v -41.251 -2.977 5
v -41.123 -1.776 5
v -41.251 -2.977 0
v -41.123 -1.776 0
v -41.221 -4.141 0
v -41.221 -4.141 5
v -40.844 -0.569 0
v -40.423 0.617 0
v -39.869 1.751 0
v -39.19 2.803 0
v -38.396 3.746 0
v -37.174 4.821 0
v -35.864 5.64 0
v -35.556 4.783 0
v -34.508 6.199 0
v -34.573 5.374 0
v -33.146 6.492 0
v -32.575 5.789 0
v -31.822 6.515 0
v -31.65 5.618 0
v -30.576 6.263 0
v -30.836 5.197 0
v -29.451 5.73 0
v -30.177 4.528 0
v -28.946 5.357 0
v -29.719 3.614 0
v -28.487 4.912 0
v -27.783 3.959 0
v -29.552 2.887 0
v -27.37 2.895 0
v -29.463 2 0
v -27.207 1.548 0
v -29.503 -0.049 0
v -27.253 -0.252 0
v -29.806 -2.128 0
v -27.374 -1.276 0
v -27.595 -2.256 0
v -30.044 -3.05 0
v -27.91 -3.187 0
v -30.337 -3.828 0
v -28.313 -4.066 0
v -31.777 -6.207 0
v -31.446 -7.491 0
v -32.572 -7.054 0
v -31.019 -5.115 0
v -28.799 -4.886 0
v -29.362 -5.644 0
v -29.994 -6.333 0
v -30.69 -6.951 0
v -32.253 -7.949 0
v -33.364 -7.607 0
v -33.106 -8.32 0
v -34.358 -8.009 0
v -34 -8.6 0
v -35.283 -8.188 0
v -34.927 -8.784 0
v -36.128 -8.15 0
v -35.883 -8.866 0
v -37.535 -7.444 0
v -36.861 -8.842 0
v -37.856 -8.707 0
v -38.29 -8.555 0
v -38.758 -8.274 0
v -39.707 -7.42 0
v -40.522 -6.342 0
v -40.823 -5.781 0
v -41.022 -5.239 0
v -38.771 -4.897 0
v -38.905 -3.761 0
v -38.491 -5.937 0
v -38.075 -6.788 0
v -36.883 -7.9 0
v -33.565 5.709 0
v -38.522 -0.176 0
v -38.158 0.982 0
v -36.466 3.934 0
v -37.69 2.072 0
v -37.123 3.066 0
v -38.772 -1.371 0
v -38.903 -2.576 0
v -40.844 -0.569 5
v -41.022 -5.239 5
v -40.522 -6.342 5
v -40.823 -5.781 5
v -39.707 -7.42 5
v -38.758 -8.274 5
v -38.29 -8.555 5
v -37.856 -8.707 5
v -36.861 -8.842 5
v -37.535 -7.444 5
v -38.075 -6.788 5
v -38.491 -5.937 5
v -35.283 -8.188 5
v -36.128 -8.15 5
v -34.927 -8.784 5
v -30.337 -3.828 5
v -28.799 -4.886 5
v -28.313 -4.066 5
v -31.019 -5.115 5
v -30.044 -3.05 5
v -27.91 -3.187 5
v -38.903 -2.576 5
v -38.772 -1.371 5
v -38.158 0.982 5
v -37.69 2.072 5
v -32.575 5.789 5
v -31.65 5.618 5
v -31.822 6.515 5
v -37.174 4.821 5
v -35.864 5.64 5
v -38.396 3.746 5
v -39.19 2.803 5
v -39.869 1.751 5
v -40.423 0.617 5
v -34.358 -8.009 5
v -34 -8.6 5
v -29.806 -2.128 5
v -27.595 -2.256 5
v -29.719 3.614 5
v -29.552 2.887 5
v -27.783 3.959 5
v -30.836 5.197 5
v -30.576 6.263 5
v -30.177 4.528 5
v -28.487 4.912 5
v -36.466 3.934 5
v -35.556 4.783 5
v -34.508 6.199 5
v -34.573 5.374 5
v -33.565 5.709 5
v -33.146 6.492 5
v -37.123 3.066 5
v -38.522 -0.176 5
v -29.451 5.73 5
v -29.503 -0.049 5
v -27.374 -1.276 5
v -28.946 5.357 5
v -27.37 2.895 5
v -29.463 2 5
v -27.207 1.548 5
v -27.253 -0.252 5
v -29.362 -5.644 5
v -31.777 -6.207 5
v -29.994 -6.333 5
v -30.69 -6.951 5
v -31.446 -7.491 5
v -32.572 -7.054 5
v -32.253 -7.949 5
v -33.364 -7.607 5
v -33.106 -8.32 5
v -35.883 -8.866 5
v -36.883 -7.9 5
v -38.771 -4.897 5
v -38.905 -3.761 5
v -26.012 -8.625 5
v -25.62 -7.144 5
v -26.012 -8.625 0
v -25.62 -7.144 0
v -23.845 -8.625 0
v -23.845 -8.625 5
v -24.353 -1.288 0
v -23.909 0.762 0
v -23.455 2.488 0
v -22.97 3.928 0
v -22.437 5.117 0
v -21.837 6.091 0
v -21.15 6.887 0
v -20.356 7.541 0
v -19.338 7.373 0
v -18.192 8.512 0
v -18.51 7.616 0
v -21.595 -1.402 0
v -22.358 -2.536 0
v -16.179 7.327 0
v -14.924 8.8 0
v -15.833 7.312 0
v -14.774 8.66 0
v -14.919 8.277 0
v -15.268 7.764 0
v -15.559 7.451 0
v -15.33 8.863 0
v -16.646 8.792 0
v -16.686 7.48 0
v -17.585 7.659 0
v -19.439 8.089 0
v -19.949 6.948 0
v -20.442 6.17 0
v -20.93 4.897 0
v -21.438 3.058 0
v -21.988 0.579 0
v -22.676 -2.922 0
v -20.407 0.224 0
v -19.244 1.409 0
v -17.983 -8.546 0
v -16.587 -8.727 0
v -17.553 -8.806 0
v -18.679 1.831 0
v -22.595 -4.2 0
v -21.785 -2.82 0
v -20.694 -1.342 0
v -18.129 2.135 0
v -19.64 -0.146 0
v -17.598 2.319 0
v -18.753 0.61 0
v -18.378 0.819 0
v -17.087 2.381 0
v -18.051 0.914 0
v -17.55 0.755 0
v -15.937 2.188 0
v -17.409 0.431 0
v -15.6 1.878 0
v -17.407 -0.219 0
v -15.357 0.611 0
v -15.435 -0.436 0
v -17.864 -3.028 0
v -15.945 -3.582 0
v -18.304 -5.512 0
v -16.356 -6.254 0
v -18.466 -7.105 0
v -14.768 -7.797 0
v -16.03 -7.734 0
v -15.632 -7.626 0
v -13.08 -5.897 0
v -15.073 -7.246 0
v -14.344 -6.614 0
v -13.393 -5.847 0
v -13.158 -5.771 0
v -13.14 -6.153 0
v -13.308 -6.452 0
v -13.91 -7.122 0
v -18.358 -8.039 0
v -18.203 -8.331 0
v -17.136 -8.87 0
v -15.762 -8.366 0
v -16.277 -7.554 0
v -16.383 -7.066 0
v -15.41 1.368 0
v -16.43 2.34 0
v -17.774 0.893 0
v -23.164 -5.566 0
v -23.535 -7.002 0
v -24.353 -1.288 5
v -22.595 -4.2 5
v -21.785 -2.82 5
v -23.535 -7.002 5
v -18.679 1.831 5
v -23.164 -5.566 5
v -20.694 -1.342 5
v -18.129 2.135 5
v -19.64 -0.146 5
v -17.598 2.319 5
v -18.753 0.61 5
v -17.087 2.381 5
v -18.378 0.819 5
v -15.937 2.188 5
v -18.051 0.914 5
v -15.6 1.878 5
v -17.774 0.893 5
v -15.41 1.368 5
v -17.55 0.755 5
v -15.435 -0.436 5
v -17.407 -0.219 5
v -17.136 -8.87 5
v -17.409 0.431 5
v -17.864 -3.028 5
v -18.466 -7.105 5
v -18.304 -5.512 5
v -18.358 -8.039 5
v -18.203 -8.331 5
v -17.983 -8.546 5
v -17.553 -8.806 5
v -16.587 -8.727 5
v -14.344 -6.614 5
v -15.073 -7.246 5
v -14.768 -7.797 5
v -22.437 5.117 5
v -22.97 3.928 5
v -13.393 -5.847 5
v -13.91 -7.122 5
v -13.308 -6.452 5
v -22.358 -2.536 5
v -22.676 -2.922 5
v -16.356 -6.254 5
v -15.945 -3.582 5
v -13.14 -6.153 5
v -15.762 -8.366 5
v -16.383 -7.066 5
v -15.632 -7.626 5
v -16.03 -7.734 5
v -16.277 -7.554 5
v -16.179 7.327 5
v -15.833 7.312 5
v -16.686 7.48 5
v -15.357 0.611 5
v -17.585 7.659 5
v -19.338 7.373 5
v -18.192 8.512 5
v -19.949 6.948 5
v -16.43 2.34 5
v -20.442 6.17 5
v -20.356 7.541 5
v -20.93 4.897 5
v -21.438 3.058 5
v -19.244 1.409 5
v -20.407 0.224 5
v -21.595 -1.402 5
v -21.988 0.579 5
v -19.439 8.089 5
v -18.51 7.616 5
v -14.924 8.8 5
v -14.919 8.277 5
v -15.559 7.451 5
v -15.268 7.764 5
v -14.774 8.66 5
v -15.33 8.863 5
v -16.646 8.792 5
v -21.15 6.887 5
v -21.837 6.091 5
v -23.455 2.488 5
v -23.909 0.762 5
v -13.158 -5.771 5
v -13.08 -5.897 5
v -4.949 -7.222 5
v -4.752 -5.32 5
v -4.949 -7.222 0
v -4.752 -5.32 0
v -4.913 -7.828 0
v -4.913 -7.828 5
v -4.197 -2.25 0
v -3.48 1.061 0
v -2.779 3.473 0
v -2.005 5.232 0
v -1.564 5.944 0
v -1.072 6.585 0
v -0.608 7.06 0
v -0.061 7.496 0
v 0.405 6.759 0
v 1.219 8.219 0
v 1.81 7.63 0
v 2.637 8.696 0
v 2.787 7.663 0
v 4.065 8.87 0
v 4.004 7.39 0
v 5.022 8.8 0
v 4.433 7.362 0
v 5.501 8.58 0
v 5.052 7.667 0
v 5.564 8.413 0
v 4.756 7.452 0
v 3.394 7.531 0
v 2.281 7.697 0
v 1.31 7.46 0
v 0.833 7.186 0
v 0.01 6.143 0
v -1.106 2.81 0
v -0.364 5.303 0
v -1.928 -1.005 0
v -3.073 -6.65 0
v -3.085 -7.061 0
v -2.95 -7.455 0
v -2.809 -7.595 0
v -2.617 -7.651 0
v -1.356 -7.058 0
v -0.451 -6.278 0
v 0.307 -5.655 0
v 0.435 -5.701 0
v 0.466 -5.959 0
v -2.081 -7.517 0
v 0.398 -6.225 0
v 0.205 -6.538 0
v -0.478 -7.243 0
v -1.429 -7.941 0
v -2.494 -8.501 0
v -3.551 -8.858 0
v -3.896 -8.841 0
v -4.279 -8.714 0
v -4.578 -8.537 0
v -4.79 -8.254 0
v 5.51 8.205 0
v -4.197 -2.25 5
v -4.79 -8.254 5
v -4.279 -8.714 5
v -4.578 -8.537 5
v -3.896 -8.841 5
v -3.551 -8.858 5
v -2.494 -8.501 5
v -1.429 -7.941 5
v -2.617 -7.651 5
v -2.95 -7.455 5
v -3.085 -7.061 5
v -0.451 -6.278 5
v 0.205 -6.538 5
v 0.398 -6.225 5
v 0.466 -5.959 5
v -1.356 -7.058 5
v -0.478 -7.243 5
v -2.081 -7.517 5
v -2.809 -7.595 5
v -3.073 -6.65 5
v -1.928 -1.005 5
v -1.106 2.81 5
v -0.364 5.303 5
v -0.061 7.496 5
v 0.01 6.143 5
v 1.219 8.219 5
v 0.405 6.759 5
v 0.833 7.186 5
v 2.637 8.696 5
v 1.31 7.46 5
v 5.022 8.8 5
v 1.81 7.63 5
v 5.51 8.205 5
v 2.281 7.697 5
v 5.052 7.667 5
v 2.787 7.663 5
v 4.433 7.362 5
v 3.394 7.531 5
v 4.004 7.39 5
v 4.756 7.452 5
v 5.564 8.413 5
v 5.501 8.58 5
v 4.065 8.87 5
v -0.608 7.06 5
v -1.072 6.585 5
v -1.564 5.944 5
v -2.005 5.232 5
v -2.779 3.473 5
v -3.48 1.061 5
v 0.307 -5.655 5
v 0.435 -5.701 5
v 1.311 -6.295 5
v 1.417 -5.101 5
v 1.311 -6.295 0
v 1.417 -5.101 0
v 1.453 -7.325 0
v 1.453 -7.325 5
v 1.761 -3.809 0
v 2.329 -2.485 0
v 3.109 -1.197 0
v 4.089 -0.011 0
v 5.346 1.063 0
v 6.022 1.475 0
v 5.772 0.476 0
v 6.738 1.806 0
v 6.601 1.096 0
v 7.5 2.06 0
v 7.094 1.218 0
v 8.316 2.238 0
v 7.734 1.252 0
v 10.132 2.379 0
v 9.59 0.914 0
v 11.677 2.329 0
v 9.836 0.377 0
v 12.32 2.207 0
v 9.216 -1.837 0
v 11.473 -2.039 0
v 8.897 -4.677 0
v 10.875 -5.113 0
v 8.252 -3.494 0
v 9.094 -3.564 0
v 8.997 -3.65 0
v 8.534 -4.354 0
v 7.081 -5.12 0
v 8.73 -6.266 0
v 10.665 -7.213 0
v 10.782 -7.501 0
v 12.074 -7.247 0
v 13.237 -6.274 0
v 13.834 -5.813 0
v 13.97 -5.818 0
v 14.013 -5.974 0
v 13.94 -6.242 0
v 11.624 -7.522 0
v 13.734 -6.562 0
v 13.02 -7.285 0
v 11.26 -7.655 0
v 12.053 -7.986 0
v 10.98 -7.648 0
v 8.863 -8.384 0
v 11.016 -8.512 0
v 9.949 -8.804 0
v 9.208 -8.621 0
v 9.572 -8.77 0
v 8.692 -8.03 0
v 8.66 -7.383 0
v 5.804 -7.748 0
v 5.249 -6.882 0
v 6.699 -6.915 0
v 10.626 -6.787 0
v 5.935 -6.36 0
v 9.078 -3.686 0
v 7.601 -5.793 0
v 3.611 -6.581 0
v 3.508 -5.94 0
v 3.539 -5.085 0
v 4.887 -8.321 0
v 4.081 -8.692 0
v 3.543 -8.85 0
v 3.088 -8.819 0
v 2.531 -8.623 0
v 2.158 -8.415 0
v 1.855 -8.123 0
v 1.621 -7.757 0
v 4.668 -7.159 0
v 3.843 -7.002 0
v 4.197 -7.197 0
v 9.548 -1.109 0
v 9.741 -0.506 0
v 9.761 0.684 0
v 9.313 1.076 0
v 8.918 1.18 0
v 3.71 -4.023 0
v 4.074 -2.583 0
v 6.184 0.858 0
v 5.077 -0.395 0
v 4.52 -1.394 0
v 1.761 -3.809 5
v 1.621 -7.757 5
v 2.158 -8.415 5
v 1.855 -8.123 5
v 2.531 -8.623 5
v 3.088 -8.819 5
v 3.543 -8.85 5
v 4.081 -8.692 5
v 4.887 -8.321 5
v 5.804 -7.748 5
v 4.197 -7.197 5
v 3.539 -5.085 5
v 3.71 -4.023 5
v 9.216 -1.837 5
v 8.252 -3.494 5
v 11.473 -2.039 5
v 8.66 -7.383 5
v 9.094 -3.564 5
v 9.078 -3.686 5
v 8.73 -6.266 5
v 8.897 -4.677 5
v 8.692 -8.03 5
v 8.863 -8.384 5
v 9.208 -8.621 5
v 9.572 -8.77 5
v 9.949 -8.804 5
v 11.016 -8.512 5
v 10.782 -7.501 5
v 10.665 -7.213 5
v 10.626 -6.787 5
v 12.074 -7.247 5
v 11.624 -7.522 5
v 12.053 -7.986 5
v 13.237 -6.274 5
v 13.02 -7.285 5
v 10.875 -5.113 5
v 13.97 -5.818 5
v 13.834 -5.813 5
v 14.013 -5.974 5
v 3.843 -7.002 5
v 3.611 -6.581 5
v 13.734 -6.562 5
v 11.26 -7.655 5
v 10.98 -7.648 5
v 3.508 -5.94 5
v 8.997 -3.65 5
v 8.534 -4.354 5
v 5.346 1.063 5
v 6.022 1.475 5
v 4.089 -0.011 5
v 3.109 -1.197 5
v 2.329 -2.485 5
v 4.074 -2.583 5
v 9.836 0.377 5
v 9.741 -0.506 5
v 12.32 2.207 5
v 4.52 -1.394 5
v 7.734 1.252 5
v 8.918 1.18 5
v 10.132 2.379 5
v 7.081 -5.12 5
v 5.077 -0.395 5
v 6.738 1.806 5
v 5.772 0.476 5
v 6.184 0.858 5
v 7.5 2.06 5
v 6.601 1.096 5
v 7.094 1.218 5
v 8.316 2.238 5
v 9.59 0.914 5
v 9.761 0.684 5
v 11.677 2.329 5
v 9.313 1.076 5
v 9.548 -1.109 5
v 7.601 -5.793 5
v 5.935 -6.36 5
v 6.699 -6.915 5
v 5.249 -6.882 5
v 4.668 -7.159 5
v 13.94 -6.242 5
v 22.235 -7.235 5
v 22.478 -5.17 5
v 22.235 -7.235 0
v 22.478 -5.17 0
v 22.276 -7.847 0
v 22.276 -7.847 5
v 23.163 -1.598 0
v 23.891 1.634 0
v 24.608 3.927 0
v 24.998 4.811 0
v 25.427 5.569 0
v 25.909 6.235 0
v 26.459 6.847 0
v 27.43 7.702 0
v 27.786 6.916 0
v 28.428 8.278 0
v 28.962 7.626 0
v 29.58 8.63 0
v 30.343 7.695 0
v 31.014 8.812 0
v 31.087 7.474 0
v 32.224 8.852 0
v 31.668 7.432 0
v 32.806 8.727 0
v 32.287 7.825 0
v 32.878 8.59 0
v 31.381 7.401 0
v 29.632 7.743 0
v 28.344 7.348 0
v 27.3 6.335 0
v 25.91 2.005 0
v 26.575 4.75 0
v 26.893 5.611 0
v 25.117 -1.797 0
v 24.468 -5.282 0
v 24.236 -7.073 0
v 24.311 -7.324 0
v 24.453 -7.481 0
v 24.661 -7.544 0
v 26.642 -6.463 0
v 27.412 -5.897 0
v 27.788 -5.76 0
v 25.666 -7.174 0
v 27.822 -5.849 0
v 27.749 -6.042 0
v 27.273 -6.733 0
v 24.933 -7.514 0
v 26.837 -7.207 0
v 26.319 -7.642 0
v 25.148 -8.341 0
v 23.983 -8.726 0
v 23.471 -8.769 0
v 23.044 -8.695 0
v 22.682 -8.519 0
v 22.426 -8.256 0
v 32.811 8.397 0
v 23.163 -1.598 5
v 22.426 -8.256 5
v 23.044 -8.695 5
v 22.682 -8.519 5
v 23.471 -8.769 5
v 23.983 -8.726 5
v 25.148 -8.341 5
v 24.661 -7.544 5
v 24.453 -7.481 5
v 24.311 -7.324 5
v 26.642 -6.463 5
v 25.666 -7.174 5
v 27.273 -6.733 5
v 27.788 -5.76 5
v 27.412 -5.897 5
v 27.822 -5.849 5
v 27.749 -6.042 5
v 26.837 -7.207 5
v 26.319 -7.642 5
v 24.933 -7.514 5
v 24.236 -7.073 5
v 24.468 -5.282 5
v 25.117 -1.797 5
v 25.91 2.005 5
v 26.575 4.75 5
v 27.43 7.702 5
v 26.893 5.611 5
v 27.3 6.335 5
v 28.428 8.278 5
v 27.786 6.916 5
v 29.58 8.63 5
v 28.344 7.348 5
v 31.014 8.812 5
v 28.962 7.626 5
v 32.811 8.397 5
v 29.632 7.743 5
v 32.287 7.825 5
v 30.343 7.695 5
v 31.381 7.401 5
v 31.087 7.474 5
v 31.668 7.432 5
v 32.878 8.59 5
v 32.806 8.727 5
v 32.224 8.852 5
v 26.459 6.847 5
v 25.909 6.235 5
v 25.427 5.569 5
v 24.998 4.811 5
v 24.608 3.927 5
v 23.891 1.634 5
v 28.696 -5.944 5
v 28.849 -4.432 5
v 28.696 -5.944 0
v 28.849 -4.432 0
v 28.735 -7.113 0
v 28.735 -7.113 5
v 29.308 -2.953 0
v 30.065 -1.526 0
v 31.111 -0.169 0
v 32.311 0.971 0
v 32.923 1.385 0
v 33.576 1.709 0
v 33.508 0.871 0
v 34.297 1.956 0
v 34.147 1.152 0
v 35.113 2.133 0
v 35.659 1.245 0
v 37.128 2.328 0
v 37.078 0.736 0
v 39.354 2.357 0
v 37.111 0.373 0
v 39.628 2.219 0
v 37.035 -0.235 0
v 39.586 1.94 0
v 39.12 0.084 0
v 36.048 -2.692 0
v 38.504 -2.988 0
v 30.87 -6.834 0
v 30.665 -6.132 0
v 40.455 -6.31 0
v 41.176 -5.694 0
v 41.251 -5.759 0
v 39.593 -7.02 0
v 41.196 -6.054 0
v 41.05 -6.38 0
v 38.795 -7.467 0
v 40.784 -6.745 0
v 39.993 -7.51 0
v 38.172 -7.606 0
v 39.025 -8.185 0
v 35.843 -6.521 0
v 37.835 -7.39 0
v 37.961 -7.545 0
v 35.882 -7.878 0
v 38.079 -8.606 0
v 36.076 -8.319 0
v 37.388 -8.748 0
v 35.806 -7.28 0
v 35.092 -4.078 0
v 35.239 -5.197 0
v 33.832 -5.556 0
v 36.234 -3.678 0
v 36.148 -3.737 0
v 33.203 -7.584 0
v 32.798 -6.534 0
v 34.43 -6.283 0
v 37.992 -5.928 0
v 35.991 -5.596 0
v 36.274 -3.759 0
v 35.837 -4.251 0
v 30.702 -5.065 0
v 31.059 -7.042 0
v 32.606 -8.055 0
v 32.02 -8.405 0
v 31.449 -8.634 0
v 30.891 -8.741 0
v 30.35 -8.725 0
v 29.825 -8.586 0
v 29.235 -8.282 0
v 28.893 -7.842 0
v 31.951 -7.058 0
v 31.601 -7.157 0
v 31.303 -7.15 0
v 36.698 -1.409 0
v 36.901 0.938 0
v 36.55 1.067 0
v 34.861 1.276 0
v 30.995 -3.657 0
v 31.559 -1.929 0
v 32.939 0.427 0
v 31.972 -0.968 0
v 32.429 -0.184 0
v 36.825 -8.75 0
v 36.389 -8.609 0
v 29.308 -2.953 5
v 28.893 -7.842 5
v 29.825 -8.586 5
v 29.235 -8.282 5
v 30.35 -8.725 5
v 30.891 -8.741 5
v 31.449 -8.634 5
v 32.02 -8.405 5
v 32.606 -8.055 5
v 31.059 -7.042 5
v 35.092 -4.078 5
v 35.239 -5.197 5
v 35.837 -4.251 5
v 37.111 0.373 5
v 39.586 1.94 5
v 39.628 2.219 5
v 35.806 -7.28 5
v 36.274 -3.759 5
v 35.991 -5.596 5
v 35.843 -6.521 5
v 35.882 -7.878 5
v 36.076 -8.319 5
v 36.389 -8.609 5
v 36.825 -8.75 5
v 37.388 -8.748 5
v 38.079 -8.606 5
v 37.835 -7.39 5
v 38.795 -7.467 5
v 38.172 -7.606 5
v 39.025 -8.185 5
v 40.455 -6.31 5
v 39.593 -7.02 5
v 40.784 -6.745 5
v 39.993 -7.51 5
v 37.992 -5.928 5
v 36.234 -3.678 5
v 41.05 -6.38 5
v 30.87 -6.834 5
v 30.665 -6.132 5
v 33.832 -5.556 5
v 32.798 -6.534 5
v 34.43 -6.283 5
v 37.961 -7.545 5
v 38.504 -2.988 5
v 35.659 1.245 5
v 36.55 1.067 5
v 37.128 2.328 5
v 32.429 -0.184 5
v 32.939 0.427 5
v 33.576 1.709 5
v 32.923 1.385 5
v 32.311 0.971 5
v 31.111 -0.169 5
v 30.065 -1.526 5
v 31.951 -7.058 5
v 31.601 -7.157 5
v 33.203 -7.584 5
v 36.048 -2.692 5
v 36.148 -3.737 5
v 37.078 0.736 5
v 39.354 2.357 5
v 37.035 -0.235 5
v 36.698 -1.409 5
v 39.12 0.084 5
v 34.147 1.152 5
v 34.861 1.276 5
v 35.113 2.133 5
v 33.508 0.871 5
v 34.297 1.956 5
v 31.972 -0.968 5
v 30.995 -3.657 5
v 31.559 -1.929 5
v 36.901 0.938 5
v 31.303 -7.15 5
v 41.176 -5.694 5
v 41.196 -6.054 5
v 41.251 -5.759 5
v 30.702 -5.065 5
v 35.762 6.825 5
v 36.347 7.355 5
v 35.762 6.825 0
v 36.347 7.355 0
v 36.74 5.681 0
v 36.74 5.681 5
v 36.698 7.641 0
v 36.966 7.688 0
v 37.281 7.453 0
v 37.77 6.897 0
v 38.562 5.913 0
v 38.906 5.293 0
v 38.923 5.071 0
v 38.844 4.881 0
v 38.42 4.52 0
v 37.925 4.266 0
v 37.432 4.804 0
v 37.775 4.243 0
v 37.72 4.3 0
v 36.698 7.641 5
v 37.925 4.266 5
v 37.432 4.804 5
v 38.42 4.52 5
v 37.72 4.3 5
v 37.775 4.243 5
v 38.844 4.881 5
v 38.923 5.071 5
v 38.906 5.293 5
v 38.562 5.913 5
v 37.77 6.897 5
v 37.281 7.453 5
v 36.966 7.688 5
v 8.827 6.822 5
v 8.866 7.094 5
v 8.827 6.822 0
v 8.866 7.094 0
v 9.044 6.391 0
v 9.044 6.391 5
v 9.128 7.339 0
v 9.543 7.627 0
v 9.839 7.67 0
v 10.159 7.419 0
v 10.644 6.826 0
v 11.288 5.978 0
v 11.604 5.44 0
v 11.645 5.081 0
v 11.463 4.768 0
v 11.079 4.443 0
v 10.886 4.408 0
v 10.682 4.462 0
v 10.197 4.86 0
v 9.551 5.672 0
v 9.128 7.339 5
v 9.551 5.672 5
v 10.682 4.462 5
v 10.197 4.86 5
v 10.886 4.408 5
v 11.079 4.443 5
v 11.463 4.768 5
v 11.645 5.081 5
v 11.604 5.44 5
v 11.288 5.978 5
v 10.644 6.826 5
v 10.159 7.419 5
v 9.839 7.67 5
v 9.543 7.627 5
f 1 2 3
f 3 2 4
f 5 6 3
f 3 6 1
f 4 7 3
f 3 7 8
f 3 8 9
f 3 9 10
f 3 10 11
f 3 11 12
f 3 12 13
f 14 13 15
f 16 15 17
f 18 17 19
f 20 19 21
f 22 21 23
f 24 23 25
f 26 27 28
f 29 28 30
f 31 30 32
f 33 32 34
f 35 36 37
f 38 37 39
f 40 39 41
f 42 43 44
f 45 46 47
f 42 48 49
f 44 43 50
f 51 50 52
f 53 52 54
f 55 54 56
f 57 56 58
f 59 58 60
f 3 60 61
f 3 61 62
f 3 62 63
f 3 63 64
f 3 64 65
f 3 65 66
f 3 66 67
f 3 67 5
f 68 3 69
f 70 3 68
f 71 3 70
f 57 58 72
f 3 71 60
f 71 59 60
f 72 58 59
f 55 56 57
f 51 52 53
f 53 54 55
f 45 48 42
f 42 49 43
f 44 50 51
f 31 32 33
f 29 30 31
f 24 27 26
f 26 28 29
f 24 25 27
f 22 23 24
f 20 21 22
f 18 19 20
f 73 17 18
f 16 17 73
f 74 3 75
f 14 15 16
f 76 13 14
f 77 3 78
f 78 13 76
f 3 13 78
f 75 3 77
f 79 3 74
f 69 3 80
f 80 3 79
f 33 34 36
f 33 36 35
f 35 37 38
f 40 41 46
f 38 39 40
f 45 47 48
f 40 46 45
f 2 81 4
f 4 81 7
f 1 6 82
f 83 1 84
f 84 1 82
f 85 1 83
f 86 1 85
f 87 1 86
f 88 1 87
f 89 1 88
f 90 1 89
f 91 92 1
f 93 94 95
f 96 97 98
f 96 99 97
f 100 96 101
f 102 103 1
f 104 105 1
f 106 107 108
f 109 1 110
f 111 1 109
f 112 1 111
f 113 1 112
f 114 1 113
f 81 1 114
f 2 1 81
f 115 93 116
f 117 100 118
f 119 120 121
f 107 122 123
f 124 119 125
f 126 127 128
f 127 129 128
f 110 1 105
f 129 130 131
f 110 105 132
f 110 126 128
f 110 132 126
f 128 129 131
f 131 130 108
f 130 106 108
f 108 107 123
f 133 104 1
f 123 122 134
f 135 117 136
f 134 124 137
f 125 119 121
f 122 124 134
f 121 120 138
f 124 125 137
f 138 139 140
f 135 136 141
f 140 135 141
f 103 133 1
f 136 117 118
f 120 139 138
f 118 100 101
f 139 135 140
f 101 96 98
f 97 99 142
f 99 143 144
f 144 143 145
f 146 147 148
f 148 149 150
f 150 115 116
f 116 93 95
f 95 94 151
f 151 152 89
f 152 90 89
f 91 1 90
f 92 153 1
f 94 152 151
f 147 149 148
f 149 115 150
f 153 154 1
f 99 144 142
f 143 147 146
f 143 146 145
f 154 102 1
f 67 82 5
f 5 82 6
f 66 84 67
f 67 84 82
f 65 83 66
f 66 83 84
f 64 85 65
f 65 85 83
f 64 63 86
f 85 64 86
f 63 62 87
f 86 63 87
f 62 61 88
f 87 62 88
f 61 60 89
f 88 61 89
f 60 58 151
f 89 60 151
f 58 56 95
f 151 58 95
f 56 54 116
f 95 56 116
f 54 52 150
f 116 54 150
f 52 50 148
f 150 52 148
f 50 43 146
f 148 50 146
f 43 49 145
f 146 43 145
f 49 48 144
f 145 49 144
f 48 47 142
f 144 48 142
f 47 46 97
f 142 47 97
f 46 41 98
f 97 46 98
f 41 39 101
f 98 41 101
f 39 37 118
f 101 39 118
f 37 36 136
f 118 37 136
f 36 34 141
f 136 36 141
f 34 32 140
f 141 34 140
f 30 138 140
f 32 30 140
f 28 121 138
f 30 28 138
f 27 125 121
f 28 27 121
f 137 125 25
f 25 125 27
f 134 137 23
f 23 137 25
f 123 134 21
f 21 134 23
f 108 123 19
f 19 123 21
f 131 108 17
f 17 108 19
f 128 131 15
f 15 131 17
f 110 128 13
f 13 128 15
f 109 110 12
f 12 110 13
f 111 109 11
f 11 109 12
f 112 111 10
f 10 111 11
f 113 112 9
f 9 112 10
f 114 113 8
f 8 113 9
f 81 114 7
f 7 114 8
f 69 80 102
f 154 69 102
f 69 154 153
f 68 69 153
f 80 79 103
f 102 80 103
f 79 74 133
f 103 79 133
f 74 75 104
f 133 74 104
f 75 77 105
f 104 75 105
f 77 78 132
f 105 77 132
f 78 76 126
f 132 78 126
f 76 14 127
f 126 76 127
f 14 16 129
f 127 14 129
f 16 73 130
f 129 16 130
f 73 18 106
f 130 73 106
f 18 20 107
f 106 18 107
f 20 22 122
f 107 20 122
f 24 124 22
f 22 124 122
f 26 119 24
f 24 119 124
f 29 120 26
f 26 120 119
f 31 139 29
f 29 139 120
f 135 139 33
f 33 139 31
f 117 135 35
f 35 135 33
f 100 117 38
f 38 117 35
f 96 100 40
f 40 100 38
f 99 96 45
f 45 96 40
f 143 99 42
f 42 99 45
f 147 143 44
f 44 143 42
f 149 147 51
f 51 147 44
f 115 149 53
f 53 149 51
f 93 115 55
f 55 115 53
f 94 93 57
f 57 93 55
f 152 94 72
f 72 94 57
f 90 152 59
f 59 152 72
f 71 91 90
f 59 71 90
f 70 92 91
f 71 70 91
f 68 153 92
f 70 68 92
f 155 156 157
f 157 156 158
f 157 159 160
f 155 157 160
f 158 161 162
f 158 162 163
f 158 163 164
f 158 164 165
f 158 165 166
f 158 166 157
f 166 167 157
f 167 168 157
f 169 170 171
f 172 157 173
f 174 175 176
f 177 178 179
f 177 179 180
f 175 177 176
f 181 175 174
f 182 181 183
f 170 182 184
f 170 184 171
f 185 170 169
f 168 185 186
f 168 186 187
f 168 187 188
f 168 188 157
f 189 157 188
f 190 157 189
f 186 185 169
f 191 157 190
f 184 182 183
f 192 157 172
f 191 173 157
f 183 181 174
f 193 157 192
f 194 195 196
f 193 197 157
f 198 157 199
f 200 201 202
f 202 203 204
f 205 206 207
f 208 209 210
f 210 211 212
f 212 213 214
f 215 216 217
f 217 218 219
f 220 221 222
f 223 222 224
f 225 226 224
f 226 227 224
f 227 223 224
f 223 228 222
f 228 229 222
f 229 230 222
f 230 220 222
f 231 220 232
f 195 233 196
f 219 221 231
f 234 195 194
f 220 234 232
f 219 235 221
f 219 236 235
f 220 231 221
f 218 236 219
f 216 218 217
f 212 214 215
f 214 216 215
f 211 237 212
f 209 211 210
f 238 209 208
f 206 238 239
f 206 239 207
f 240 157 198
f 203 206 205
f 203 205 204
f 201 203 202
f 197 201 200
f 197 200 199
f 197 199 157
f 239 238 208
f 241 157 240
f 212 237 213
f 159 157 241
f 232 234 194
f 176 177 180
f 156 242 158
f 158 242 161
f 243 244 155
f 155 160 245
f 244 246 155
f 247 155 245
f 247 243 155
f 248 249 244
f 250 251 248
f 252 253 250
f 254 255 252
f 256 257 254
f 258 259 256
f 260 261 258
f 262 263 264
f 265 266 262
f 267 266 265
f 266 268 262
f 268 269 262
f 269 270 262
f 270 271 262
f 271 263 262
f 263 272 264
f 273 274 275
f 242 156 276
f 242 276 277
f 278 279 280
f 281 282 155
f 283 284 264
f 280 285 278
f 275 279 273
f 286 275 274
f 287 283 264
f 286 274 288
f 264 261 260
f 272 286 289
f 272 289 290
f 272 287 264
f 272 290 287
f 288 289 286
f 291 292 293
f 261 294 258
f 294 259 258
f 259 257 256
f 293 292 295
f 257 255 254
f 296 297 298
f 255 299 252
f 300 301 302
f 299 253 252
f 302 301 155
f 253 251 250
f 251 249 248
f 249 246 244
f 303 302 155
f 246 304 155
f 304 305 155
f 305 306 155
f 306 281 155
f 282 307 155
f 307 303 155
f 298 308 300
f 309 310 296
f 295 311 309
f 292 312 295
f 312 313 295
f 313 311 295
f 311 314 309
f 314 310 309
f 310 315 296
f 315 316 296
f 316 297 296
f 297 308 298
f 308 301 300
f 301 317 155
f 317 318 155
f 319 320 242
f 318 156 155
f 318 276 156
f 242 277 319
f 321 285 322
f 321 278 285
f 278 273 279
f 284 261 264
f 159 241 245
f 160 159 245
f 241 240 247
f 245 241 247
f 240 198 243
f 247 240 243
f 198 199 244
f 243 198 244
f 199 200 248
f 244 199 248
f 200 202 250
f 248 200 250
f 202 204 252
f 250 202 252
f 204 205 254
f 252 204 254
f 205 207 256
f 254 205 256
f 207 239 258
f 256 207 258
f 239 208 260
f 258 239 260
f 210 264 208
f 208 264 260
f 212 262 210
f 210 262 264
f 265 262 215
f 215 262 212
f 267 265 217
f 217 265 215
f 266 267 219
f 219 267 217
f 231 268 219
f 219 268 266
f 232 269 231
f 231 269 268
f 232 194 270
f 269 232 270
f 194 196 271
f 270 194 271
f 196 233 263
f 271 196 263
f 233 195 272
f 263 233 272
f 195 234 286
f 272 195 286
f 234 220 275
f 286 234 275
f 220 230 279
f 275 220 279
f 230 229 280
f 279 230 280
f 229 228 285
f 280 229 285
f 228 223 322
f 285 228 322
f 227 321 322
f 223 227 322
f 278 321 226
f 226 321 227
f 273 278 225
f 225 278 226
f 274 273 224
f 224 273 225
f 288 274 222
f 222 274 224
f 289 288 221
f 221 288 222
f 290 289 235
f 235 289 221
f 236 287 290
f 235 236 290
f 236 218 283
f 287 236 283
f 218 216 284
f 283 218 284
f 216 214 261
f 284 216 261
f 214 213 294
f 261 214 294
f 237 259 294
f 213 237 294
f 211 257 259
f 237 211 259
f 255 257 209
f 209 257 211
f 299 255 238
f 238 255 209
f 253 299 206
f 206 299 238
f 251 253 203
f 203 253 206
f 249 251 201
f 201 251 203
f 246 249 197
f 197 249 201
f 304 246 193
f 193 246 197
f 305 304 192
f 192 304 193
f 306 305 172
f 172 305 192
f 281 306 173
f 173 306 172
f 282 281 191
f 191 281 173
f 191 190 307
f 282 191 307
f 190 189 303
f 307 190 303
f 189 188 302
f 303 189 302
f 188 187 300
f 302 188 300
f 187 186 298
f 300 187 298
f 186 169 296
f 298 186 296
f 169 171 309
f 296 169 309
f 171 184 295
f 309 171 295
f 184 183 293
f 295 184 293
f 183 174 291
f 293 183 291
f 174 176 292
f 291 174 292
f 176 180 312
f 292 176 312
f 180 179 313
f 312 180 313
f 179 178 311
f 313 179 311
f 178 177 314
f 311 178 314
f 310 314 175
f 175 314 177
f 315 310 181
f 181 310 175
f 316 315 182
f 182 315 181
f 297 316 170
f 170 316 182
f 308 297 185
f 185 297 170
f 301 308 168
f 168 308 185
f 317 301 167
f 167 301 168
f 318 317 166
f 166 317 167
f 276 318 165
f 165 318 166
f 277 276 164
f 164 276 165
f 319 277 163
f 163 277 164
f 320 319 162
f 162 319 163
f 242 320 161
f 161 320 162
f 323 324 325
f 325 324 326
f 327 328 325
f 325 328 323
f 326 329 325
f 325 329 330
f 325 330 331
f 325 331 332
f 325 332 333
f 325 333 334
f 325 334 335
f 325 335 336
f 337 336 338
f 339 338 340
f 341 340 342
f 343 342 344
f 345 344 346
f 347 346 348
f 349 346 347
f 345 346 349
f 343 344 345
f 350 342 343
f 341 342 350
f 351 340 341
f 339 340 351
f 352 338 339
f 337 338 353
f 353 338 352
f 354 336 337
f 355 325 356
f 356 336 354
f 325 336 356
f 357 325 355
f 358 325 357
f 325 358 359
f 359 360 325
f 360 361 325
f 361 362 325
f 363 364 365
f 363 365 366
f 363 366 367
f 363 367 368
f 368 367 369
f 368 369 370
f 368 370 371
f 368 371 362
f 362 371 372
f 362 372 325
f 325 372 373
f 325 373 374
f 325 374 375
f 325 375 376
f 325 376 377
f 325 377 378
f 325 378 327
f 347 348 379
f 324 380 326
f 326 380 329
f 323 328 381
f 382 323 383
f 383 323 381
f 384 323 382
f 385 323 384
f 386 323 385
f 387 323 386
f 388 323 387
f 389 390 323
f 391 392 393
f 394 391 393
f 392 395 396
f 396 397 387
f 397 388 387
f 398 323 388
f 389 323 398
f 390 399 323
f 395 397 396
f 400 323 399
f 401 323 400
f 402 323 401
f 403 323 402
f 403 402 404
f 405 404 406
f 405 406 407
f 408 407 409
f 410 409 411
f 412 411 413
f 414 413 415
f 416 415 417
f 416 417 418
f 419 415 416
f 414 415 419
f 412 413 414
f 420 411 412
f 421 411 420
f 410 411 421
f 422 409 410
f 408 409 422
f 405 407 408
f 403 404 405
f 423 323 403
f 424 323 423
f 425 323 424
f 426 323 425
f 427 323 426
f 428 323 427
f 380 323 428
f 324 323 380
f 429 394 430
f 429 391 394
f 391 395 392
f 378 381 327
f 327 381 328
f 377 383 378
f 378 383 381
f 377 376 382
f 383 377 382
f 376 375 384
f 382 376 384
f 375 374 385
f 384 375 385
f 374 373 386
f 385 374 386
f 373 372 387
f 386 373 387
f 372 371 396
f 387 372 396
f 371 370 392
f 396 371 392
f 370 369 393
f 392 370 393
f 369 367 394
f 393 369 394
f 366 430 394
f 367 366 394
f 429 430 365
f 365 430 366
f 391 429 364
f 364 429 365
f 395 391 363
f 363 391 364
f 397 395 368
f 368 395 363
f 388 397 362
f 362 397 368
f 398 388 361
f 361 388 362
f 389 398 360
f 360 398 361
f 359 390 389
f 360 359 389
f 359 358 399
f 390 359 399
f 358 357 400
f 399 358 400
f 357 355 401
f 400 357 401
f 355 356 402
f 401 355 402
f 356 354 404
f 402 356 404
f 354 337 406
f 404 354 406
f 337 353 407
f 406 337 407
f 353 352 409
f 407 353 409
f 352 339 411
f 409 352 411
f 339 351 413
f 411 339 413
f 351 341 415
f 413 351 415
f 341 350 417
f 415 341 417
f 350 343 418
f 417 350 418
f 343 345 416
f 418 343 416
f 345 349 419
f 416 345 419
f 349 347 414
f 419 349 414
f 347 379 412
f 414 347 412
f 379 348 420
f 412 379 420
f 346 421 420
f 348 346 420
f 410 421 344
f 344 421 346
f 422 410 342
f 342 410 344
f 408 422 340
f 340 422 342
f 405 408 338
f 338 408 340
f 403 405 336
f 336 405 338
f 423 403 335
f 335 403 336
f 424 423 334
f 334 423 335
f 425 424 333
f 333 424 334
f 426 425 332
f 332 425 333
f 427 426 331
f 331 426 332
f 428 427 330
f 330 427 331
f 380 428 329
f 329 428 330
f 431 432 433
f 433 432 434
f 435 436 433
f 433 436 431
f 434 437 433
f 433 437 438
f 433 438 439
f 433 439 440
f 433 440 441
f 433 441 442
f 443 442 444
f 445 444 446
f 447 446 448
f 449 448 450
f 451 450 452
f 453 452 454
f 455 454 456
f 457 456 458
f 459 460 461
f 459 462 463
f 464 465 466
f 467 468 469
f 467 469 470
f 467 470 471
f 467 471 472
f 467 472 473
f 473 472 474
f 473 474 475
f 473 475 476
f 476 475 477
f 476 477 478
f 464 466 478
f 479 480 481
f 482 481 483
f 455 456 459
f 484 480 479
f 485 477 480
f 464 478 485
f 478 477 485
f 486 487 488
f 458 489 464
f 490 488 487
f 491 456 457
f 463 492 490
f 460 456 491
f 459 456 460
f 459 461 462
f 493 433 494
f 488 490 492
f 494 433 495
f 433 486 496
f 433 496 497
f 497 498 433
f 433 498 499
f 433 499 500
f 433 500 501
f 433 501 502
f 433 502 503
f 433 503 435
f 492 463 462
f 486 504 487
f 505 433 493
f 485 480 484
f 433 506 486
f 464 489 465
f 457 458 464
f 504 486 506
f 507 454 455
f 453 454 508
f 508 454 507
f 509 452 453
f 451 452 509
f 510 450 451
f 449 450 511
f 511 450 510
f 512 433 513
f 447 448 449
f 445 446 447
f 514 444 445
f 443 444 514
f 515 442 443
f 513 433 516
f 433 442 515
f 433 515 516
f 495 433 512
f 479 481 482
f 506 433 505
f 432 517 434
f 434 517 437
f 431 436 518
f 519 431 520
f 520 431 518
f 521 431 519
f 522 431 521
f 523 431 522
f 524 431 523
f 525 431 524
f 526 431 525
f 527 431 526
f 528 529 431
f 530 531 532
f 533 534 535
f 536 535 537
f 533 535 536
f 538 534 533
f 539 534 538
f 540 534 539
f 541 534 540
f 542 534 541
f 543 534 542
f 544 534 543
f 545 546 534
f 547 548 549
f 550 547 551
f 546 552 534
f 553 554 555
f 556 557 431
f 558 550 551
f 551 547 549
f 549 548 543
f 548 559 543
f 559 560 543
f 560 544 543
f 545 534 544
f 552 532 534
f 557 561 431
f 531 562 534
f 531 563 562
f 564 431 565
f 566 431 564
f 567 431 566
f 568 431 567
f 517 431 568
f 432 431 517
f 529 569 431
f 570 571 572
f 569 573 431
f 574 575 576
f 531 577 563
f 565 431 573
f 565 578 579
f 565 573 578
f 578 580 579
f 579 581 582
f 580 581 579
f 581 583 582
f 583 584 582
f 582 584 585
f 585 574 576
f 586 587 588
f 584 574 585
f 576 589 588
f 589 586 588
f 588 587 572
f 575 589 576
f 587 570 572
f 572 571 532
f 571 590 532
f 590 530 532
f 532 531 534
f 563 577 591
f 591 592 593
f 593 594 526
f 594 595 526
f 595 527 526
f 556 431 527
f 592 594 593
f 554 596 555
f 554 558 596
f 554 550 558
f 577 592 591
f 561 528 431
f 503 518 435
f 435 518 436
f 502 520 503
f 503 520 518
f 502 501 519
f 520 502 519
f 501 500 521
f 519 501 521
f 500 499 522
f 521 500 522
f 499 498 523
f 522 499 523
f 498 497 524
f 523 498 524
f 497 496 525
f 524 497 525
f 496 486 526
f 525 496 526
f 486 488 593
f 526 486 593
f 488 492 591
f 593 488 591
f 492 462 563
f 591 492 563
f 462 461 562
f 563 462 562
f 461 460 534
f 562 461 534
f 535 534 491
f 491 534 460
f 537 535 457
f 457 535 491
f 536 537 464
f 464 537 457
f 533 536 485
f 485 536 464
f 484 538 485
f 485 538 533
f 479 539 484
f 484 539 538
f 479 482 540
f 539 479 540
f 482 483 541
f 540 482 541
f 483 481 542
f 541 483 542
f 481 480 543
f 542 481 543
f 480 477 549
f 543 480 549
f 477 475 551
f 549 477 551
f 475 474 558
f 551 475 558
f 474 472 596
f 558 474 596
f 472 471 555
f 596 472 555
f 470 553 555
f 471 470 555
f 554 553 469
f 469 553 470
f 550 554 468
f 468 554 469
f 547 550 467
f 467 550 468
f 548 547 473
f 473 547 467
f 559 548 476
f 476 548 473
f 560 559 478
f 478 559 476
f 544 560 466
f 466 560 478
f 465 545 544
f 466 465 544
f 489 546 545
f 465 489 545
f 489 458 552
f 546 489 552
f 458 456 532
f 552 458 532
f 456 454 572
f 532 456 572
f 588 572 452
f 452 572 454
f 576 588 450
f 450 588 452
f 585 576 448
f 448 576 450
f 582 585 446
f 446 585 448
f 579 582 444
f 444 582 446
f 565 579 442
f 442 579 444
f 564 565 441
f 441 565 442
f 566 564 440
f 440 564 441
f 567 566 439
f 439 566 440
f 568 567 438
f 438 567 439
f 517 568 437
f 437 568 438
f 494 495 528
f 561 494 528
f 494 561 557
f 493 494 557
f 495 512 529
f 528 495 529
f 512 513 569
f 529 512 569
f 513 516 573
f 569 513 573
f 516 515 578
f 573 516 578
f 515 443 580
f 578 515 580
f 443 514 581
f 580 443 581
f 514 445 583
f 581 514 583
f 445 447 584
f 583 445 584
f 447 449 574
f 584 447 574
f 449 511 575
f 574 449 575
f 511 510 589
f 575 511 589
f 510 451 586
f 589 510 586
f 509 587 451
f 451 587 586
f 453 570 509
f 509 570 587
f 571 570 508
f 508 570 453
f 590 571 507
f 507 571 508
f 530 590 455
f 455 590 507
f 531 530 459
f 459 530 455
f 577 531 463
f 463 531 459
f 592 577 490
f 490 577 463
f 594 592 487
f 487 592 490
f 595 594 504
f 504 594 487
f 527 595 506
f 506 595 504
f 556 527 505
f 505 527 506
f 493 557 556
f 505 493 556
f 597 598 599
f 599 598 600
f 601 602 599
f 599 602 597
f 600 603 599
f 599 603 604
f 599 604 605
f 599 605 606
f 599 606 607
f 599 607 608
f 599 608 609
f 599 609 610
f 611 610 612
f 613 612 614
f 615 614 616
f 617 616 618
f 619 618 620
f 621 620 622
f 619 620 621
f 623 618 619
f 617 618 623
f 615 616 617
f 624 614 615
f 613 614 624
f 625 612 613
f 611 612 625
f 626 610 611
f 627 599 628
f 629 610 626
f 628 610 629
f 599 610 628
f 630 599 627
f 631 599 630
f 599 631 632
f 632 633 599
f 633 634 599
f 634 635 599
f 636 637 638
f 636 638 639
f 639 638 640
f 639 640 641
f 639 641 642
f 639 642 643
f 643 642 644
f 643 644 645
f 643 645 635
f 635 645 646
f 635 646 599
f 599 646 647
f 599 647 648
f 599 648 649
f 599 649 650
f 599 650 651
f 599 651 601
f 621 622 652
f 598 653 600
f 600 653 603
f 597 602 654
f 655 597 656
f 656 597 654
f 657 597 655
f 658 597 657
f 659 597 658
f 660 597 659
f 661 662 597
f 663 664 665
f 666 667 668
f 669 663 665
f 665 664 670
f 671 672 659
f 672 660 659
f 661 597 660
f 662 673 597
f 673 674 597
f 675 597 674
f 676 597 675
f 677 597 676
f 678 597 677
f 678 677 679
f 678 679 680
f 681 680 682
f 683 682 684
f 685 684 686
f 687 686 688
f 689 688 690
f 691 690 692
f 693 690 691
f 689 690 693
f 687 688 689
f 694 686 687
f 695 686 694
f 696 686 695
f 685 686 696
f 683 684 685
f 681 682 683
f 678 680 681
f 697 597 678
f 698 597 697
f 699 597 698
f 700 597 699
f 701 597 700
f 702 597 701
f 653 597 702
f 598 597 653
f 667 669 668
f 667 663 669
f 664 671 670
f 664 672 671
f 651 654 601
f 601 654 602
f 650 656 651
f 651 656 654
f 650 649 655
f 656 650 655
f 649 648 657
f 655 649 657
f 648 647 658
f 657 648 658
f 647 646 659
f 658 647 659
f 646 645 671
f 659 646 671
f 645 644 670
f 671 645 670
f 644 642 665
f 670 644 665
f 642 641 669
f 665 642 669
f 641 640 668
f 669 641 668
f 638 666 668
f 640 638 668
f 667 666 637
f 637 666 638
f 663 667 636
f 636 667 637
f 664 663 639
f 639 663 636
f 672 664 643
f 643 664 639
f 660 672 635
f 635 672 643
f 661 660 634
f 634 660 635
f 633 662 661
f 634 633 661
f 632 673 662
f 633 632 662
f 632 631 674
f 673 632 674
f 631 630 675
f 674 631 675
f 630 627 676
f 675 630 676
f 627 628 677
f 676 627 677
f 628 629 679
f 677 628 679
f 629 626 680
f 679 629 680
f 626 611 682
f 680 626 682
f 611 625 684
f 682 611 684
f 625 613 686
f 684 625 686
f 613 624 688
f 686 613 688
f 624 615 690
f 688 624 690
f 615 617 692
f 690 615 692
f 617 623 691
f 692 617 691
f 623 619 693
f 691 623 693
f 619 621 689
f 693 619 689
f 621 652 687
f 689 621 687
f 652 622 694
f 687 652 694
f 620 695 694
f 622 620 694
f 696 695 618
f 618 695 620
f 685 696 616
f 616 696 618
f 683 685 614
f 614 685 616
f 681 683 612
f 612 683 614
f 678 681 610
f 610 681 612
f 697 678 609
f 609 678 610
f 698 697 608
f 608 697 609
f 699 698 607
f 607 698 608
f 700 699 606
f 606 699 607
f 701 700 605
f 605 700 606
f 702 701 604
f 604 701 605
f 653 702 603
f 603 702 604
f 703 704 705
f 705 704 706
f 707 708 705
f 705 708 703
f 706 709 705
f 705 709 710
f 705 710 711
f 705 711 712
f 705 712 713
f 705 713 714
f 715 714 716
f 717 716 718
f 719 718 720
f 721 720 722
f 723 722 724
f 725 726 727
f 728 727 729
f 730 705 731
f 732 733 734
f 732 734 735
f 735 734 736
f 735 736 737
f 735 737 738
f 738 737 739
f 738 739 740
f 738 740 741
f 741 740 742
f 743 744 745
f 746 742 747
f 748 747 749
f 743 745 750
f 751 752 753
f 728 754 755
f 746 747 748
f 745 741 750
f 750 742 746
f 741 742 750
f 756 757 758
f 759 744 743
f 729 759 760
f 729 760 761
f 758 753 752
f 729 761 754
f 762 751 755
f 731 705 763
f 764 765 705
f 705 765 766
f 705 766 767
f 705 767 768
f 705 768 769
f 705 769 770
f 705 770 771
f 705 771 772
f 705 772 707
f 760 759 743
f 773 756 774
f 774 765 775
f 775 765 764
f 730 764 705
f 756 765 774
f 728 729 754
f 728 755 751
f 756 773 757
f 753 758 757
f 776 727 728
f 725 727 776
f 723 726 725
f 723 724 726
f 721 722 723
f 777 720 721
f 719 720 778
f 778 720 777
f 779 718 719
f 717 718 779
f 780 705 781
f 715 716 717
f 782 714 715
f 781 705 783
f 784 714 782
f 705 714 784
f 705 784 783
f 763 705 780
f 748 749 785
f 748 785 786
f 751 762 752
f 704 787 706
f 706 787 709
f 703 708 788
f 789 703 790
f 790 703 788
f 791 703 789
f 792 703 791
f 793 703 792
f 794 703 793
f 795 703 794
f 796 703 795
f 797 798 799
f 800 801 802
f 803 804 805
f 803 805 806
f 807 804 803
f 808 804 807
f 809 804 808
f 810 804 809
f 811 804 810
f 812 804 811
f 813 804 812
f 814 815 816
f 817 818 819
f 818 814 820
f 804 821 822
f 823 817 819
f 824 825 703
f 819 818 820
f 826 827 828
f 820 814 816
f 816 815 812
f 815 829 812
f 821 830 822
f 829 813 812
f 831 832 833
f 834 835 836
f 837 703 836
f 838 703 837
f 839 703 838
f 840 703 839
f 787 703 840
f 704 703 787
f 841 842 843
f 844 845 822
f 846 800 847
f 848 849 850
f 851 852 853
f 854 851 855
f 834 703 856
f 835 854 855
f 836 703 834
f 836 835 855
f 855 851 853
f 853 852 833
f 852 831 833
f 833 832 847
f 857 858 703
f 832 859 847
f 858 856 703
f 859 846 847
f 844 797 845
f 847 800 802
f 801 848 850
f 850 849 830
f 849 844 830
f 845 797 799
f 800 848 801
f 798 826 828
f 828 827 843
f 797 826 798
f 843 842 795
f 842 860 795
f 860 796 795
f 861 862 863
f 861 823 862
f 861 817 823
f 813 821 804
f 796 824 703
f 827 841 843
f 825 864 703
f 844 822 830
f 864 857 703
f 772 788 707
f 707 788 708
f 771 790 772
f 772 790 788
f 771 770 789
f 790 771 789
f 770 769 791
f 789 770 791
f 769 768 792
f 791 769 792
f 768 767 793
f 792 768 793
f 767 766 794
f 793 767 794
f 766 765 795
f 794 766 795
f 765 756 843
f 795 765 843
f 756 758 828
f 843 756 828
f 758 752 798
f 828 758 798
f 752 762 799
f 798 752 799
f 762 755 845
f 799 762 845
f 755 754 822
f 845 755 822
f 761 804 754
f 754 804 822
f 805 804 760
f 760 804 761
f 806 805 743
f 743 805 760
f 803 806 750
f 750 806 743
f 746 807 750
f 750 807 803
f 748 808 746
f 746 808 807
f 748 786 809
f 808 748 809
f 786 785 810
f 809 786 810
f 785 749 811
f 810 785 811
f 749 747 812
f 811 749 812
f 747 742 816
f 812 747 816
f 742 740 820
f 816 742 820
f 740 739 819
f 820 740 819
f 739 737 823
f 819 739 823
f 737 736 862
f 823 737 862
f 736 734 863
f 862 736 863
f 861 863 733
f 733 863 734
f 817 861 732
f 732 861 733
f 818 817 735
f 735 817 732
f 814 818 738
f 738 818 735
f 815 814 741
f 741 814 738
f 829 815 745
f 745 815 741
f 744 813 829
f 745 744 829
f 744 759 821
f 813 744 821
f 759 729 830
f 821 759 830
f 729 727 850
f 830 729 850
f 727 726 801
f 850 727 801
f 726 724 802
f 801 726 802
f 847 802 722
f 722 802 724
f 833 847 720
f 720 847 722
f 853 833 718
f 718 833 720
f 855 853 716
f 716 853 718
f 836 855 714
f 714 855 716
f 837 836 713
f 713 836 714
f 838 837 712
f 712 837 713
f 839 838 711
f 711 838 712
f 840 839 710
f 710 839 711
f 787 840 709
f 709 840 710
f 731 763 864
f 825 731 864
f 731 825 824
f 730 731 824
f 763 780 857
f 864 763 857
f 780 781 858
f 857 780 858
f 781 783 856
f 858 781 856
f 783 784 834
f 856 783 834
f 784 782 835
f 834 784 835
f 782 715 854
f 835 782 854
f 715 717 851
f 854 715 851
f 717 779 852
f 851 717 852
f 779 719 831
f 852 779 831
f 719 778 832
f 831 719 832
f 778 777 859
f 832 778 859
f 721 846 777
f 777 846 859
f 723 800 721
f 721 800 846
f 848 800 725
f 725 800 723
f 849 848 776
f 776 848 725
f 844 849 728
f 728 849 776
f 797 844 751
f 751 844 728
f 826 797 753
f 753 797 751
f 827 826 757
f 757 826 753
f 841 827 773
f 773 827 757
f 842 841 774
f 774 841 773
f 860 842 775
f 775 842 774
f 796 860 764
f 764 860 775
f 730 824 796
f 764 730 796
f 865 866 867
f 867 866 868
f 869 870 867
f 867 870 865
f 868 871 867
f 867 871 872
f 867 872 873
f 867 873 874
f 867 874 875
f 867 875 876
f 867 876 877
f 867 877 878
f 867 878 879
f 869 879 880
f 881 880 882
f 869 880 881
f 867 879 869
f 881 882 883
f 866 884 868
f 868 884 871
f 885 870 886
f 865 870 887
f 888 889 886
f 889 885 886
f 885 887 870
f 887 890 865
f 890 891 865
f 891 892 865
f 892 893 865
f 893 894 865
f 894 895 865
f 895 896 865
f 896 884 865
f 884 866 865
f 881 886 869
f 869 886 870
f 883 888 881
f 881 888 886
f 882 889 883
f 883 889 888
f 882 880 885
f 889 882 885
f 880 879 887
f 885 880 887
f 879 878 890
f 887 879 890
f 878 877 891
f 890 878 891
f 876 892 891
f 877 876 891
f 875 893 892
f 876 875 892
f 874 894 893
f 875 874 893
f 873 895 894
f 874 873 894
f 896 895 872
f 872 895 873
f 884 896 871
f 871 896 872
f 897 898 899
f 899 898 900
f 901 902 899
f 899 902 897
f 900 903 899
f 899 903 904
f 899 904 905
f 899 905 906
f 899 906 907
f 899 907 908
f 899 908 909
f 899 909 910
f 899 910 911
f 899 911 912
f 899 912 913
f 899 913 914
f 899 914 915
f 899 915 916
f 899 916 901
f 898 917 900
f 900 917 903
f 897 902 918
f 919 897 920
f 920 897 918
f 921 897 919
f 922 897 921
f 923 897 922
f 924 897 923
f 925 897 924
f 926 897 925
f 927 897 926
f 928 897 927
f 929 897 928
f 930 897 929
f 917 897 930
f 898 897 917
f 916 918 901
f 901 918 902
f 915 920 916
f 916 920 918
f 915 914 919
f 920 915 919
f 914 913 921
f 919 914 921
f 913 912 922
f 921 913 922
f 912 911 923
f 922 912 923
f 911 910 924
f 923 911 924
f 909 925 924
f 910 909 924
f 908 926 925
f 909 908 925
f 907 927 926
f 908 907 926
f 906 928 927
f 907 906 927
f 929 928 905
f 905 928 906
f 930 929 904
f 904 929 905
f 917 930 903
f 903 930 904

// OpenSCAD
// Module names are of the form poly_<inkscape-path-id>().  As a result,
// you can associate a polygon in this OpenSCAD program with the corresponding
// SVG element in the Inkscape document by looking for the XML element with
// the attribute id="inkscape-path-id".

// fudge value is used to ensure that subtracted solids are a tad taller
// in the z dimension than the polygon being subtracted from.  This helps
// keep the resulting .stl file manifold.
fudge = 0.1;

module poly_path3126(h)
{
  scale([25.4/90, -25.4/90, 1]) union()
  {
    difference()
    {
       linear_extrude(height=h)
         polygon([[-134.133984,30.851717],[-135.671916,30.314366],[-137.330951,29.316673],[-140.692831,26.290181],[-143.580622,22.472069],[-144.647047,20.484852],[-145.355324,18.562167],[-146.057554,14.672103],[-146.165737,10.547994],[-145.710361,6.294118],[-144.721918,2.014753],[-143.230898,-2.185822],[-141.267790,-6.203329],[-138.863086,-9.933488],[-136.047274,-13.272023],[-131.717793,-17.081642],[-127.076391,-19.985169],[-122.270575,-21.965236],[-117.447853,-23.004476],[-112.755731,-23.085520],[-108.341718,-22.191001],[-104.353320,-20.303551],[-102.564822,-18.982050],[-100.938044,-17.405803],[-98.444253,-14.027594],[-96.980956,-10.256571],[-96.403072,-5.485598],[-96.565524,0.892457],[-96.992981,4.519989],[-97.775941,7.992799],[-98.893099,11.293898],[-100.323149,14.406294],[-102.044785,17.312997],[-104.036701,19.997018],[-106.277591,22.441364],[-108.746151,24.629046],[-111.421072,26.543072],[-114.281051,28.166454],[-117.304780,29.482199],[-120.470954,30.473318],[-123.758268,31.122820],[-127.145415,31.413714],[-130.611089,31.329010],[-134.133984,30.851717]]);
       translate([0, 0, -fudge])
         linear_extrude(height=h+2*fudge)
           polygon([[-118.217144,26.955267],[-115.410602,24.993711],[-112.595213,21.992447],[-109.909392,18.124318],[-107.491554,13.562167],[-106.456764,10.808181],[-105.609553,7.538595],[-104.537749,0.174248],[-104.395900,-7.087609],[-104.711133,-10.229084],[-105.303764,-12.803713],[-106.925721,-16.043415],[-109.260411,-18.413373],[-112.146698,-19.905929],[-115.423442,-20.513427],[-118.929505,-20.228211],[-122.503749,-19.042624],[-125.985035,-16.949010],[-129.212224,-13.939713],[-131.539040,-10.861800],[-133.546354,-7.340276],[-135.207353,-3.477875],[-136.495223,0.622669],[-137.383152,4.858623],[-137.844325,9.127253],[-137.851931,13.325826],[-137.379154,17.351607],[-136.384626,21.037865],[-134.911637,24.053114],[-132.999314,26.377744],[-130.686786,27.992146],[-128.013177,28.876708],[-125.017616,29.011823],[-121.739230,28.377879],[-118.217144,26.955267]]);
    }
    linear_extrude(height=h)
      polygon([[-63.717544,30.281227],[-64.499146,29.521011],[-65.046849,28.484939],[-65.431742,25.174716],[-64.854599,19.529530],[-63.297794,10.728357],[-61.678267,0.775218],[-61.685832,-1.525530],[-62.185754,-2.675563],[-62.979455,-3.164417],[-63.959336,-3.238166],[-65.117827,-2.901858],[-66.447362,-2.160542],[-69.589286,0.516924],[-73.324564,4.753847],[-77.192200,9.990597],[-80.059831,14.880998],[-82.076700,19.722404],[-83.392054,24.812167],[-84.489824,30.562167],[-88.328414,30.562167],[-92.167004,30.562167],[-90.777724,25.312167],[-86.289024,4.562167],[-84.717119,-2.699826],[-83.106849,-8.817163],[-81.391033,-13.918040],[-79.502491,-18.130648],[-77.374040,-21.583182],[-74.938501,-24.403835],[-72.128693,-26.720801],[-68.877434,-28.662273],[-64.458279,-30.162295],[-58.980343,-31.152512],[-54.318600,-31.403421],[-52.879730,-31.179917],[-52.348024,-30.685523],[-52.862087,-29.329089],[-54.098024,-27.508803],[-55.130135,-26.401820],[-56.102049,-25.907352],[-57.328228,-25.962557],[-59.123134,-26.504593],[-62.308446,-27.137784],[-65.585441,-26.987483],[-68.521599,-26.124247],[-70.684404,-24.618633],[-72.431054,-21.860919],[-74.162181,-17.353236],[-75.960839,-10.836171],[-77.910084,-2.050313],[-80.348024,10.354717],[-79.222839,8.985616],[-76.517614,4.967207],[-72.308053,-0.791653],[-68.186736,-4.992488],[-66.185443,-6.486596],[-64.237740,-7.564736],[-62.354137,-8.218089],[-60.545144,-8.437833],[-58.217571,-8.292548],[-56.471179,-7.751054],[-55.275618,-6.654892],[-54.600537,-4.845602],[-54.415586,-2.164725],[-54.690414,1.546197],[-56.498004,12.692017],[-57.955819,22.158839],[-58.049776,25.037838],[-57.675619,26.765433],[-56.799741,27.405275],[-55.388532,27.021017],[-53.408383,25.676310],[-50.825684,23.434807],[-47.453664,20.718433],[-46.622712,20.447781],[-46.348024,20.894337],[-46.558398,21.802800],[-47.154126,22.861870],[-49.289294,25.236302],[-52.328828,27.626582],[-55.848024,29.641657],[-58.773255,30.922262],[-60.719538,31.428063],[-62.197444,31.200554],[-63.717544,30.281227]]);
    linear_extrude(height=h)
      polygon([[-15.162644,30.878347],[-16.221733,30.249688],[-16.971197,29.246540],[-17.409364,27.736920],[-17.534559,25.588848],[-16.839339,18.849424],[-14.872144,7.972417],[-12.331991,-3.759363],[-9.845663,-12.304929],[-7.104220,-18.537610],[-5.541288,-21.059534],[-3.798724,-23.330733],[-2.154833,-25.015515],[-0.215537,-26.559311],[4.319141,-29.121566],[9.345061,-30.812737],[14.401976,-31.428063],[17.792861,-31.179975],[19.492847,-30.403338],[19.715148,-29.809021],[19.522398,-29.073216],[17.901976,-27.164673],[16.852346,-26.404635],[15.705747,-26.085947],[14.188560,-26.186169],[12.027166,-26.682863],[9.876165,-27.153054],[8.082076,-27.273353],[6.413829,-27.035947],[4.640356,-26.433023],[2.952996,-25.462835],[1.433961,-23.949473],[0.035273,-21.767494],[-1.291048,-18.791454],[-3.918511,-9.955422],[-6.832264,3.562167],[-10.886624,23.562167],[-10.930541,25.019057],[-10.452374,26.415407],[-9.954124,26.910853],[-9.271710,27.110988],[-7.374978,26.635022],[-4.803357,25.006898],[-1.598024,22.246007],[1.089321,20.039312],[1.542531,20.199809],[1.651946,21.115997],[1.408861,22.056926],[0.724869,23.167203],[-1.694399,25.662744],[-5.062980,28.136517],[-8.837994,30.122417],[-12.582533,31.385607],[-13.804072,31.327697],[-15.162644,30.878347]]);
    difference()
    {
       linear_extrude(height=h)
         polygon([[8.967346,30.555187],[7.647128,29.816087],[6.573921,28.783308],[5.742379,27.486404],[5.147150,25.954931],[4.644244,22.306490],[5.022413,18.074422],[6.238870,13.495162],[8.250825,8.805146],[11.015490,4.240809],[14.490076,0.038587],[18.943554,-3.768358],[21.337566,-5.226483],[23.873813,-6.399858],[26.575337,-7.297593],[29.465179,-7.928798],[35.901976,-8.428063],[41.375413,-8.253364],[43.651976,-7.820103],[40.651976,7.223517],[38.533226,18.116031],[37.651976,24.046777],[37.789285,25.559165],[38.205339,26.577037],[38.906329,27.099177],[39.898444,27.124371],[41.187877,26.651403],[42.780816,25.679058],[46.901976,22.231377],[49.019761,20.596174],[49.500833,20.613596],[49.651976,21.166287],[49.391658,22.115847],[48.664658,23.252423],[46.134328,25.812409],[42.708419,28.297819],[39.034366,30.160227],[35.251396,31.196792],[33.918414,31.075544],[32.625586,30.548047],[31.404623,29.708190],[30.800206,28.454113],[30.685703,26.161018],[30.934486,22.204107],[31.525217,16.572611],[32.166326,13.062167],[32.223738,12.630128],[31.879599,12.932253],[30.239566,15.428457],[26.931170,20.528442],[23.738102,24.501452],[20.564514,27.451717],[17.314556,29.483467],[14.459814,30.796577],[12.554574,31.356723],[10.942523,31.248171],[8.967346,30.555187]]);
       translate([0, 0, -fudge])
         linear_extrude(height=h+2*fudge)
           polygon([[21.028216,22.536687],[25.089860,18.143384],[29.239057,12.380058],[32.654966,6.509072],[33.831424,3.927694],[34.516746,1.792787],[34.851583,-1.334757],[34.586309,-2.422380],[33.981633,-3.237198],[32.999350,-3.812682],[31.601255,-4.182302],[27.404806,-4.437833],[25.135920,-4.316053],[23.389871,-3.883918],[21.913394,-3.041241],[20.453226,-1.687833],[17.988981,1.398802],[16.016459,4.939592],[14.435796,9.152464],[13.147126,14.255347],[12.539801,18.019351],[12.429616,21.047979],[12.795495,23.319085],[13.616363,24.810523],[14.871145,25.500148],[16.538764,25.365815],[18.598147,24.385376],[21.028216,22.536687]]);
    }
    linear_extrude(height=h)
      polygon([[81.651976,30.808407],[80.369477,30.186544],[79.461613,29.253864],[78.931823,27.805574],[78.783547,25.636879],[79.645301,18.319098],[82.074396,5.662167],[84.653612,-5.787575],[87.195179,-13.913852],[88.575746,-17.048190],[90.095582,-19.732662],[91.804249,-22.094266],[93.751306,-24.260003],[97.193353,-27.292384],[100.728394,-29.333093],[104.810566,-30.578014],[109.894006,-31.223033],[114.179760,-31.365417],[116.242653,-30.921131],[116.495380,-30.436461],[116.258215,-29.754095],[114.401976,-27.728233],[112.209723,-26.333339],[111.194353,-26.224216],[110.151976,-26.483633],[107.515703,-27.263974],[104.994380,-27.435941],[102.621631,-27.019838],[100.431081,-26.035971],[98.456352,-24.504641],[96.731069,-22.446154],[95.288855,-19.880814],[94.163336,-16.828923],[91.806259,-7.105649],[88.996011,6.368396],[86.697419,18.716553],[85.875316,25.062167],[86.141312,25.951665],[86.644198,26.507697],[87.379792,26.731323],[88.343911,26.623603],[90.940991,25.418371],[94.401976,22.900487],[97.127601,20.896166],[98.460609,20.409618],[98.580413,20.725043],[98.322701,21.407352],[96.635576,23.855877],[95.091557,25.537228],[93.257017,27.077695],[89.109456,29.553578],[84.979054,30.918744],[83.165964,31.070812],[81.651976,30.808407]]);
    difference()
    {
       linear_extrude(height=h)
         polygon([[105.680206,30.424327],[103.586975,29.346505],[102.375547,27.785876],[101.815661,25.203932],[101.677056,21.062167],[102.222083,15.705340],[103.849006,10.464959],[106.529836,5.407688],[110.236586,0.600187],[114.489207,-3.439326],[116.655203,-4.906939],[118.970167,-6.057306],[121.525980,-6.928560],[124.414526,-7.558839],[131.557346,-8.249013],[139.444153,-8.350763],[140.412662,-7.861206],[140.265976,-6.874333],[138.614554,-0.296959],[136.432708,10.585727],[134.616049,21.002857],[134.060186,26.183567],[134.505946,26.733832],[135.254540,26.949710],[137.463064,26.459498],[140.291424,24.875331],[143.345286,22.359607],[145.897523,20.174736],[146.165737,20.407221],[145.970876,21.450687],[145.452003,22.605392],[144.509588,23.898434],[141.708807,26.609076],[138.277885,29.001708],[134.926176,30.495427],[132.476137,30.995978],[130.483381,31.003624],[128.937143,30.502853],[127.826664,29.478151],[127.141182,27.914005],[126.869934,25.794903],[127.002159,23.105331],[127.527096,19.829777],[128.529369,13.319899],[128.387681,13.034141],[128.084312,13.243217],[126.982986,15.062167],[124.862708,18.414953],[121.996256,22.263137],[117.650148,26.872748],[115.532773,28.540775],[113.458434,29.781323],[111.431570,30.592172],[109.456619,30.971102],[107.538018,30.915894],[105.680206,30.424327]]);
       translate([0, 0, -fudge])
         linear_extrude(height=h+2*fudge)
           polygon([[119.876366,19.686507],[124.339871,14.447830],[127.731256,9.539122],[130.032275,4.990691],[131.224686,0.832847],[131.497142,-1.323105],[131.377366,-2.607247],[130.751767,-3.324589],[129.506756,-3.780143],[126.352282,-4.413158],[123.523581,-4.519858],[120.992623,-4.083415],[118.731378,-3.087006],[116.711816,-1.513804],[114.905907,0.653015],[113.285620,3.430277],[111.822926,6.834807],[109.825996,12.956675],[108.786623,17.947023],[108.655117,21.726553],[109.381784,24.215967],[110.051405,24.952100],[110.916935,25.335967],[111.972162,25.357656],[113.210876,25.007255],[116.213917,23.150535],[119.876366,19.686507]]);
    }
    linear_extrude(height=h)
      polygon([[133.651976,-15.234783],[132.632912,-17.020737],[130.182826,-20.130763],[126.713666,-24.183693],[128.790426,-26.060763],[130.031427,-27.074749],[130.982122,-27.239776],[132.096678,-26.409564],[133.829266,-24.437833],[136.636738,-20.952000],[137.855299,-18.756327],[137.916142,-17.968983],[137.636641,-17.296200],[136.132456,-16.017003],[134.380618,-15.116801],[133.847702,-15.035685],[133.651976,-15.234783]]);
    linear_extrude(height=h)
      polygon([[33.842836,-20.096243],[32.047364,-22.646121],[31.277397,-24.171277],[31.415149,-25.135491],[32.342836,-26.002543],[33.813356,-27.024527],[34.864242,-27.175756],[35.997315,-26.286693],[37.714396,-24.187803],[39.997458,-21.181980],[41.118168,-19.275769],[41.262300,-18.002133],[40.615626,-16.894033],[39.255240,-15.744013],[38.574187,-15.617714],[37.848644,-15.811319],[36.132342,-17.220535],[33.842836,-20.096243]]);
  }
}

poly_path3126(5);
